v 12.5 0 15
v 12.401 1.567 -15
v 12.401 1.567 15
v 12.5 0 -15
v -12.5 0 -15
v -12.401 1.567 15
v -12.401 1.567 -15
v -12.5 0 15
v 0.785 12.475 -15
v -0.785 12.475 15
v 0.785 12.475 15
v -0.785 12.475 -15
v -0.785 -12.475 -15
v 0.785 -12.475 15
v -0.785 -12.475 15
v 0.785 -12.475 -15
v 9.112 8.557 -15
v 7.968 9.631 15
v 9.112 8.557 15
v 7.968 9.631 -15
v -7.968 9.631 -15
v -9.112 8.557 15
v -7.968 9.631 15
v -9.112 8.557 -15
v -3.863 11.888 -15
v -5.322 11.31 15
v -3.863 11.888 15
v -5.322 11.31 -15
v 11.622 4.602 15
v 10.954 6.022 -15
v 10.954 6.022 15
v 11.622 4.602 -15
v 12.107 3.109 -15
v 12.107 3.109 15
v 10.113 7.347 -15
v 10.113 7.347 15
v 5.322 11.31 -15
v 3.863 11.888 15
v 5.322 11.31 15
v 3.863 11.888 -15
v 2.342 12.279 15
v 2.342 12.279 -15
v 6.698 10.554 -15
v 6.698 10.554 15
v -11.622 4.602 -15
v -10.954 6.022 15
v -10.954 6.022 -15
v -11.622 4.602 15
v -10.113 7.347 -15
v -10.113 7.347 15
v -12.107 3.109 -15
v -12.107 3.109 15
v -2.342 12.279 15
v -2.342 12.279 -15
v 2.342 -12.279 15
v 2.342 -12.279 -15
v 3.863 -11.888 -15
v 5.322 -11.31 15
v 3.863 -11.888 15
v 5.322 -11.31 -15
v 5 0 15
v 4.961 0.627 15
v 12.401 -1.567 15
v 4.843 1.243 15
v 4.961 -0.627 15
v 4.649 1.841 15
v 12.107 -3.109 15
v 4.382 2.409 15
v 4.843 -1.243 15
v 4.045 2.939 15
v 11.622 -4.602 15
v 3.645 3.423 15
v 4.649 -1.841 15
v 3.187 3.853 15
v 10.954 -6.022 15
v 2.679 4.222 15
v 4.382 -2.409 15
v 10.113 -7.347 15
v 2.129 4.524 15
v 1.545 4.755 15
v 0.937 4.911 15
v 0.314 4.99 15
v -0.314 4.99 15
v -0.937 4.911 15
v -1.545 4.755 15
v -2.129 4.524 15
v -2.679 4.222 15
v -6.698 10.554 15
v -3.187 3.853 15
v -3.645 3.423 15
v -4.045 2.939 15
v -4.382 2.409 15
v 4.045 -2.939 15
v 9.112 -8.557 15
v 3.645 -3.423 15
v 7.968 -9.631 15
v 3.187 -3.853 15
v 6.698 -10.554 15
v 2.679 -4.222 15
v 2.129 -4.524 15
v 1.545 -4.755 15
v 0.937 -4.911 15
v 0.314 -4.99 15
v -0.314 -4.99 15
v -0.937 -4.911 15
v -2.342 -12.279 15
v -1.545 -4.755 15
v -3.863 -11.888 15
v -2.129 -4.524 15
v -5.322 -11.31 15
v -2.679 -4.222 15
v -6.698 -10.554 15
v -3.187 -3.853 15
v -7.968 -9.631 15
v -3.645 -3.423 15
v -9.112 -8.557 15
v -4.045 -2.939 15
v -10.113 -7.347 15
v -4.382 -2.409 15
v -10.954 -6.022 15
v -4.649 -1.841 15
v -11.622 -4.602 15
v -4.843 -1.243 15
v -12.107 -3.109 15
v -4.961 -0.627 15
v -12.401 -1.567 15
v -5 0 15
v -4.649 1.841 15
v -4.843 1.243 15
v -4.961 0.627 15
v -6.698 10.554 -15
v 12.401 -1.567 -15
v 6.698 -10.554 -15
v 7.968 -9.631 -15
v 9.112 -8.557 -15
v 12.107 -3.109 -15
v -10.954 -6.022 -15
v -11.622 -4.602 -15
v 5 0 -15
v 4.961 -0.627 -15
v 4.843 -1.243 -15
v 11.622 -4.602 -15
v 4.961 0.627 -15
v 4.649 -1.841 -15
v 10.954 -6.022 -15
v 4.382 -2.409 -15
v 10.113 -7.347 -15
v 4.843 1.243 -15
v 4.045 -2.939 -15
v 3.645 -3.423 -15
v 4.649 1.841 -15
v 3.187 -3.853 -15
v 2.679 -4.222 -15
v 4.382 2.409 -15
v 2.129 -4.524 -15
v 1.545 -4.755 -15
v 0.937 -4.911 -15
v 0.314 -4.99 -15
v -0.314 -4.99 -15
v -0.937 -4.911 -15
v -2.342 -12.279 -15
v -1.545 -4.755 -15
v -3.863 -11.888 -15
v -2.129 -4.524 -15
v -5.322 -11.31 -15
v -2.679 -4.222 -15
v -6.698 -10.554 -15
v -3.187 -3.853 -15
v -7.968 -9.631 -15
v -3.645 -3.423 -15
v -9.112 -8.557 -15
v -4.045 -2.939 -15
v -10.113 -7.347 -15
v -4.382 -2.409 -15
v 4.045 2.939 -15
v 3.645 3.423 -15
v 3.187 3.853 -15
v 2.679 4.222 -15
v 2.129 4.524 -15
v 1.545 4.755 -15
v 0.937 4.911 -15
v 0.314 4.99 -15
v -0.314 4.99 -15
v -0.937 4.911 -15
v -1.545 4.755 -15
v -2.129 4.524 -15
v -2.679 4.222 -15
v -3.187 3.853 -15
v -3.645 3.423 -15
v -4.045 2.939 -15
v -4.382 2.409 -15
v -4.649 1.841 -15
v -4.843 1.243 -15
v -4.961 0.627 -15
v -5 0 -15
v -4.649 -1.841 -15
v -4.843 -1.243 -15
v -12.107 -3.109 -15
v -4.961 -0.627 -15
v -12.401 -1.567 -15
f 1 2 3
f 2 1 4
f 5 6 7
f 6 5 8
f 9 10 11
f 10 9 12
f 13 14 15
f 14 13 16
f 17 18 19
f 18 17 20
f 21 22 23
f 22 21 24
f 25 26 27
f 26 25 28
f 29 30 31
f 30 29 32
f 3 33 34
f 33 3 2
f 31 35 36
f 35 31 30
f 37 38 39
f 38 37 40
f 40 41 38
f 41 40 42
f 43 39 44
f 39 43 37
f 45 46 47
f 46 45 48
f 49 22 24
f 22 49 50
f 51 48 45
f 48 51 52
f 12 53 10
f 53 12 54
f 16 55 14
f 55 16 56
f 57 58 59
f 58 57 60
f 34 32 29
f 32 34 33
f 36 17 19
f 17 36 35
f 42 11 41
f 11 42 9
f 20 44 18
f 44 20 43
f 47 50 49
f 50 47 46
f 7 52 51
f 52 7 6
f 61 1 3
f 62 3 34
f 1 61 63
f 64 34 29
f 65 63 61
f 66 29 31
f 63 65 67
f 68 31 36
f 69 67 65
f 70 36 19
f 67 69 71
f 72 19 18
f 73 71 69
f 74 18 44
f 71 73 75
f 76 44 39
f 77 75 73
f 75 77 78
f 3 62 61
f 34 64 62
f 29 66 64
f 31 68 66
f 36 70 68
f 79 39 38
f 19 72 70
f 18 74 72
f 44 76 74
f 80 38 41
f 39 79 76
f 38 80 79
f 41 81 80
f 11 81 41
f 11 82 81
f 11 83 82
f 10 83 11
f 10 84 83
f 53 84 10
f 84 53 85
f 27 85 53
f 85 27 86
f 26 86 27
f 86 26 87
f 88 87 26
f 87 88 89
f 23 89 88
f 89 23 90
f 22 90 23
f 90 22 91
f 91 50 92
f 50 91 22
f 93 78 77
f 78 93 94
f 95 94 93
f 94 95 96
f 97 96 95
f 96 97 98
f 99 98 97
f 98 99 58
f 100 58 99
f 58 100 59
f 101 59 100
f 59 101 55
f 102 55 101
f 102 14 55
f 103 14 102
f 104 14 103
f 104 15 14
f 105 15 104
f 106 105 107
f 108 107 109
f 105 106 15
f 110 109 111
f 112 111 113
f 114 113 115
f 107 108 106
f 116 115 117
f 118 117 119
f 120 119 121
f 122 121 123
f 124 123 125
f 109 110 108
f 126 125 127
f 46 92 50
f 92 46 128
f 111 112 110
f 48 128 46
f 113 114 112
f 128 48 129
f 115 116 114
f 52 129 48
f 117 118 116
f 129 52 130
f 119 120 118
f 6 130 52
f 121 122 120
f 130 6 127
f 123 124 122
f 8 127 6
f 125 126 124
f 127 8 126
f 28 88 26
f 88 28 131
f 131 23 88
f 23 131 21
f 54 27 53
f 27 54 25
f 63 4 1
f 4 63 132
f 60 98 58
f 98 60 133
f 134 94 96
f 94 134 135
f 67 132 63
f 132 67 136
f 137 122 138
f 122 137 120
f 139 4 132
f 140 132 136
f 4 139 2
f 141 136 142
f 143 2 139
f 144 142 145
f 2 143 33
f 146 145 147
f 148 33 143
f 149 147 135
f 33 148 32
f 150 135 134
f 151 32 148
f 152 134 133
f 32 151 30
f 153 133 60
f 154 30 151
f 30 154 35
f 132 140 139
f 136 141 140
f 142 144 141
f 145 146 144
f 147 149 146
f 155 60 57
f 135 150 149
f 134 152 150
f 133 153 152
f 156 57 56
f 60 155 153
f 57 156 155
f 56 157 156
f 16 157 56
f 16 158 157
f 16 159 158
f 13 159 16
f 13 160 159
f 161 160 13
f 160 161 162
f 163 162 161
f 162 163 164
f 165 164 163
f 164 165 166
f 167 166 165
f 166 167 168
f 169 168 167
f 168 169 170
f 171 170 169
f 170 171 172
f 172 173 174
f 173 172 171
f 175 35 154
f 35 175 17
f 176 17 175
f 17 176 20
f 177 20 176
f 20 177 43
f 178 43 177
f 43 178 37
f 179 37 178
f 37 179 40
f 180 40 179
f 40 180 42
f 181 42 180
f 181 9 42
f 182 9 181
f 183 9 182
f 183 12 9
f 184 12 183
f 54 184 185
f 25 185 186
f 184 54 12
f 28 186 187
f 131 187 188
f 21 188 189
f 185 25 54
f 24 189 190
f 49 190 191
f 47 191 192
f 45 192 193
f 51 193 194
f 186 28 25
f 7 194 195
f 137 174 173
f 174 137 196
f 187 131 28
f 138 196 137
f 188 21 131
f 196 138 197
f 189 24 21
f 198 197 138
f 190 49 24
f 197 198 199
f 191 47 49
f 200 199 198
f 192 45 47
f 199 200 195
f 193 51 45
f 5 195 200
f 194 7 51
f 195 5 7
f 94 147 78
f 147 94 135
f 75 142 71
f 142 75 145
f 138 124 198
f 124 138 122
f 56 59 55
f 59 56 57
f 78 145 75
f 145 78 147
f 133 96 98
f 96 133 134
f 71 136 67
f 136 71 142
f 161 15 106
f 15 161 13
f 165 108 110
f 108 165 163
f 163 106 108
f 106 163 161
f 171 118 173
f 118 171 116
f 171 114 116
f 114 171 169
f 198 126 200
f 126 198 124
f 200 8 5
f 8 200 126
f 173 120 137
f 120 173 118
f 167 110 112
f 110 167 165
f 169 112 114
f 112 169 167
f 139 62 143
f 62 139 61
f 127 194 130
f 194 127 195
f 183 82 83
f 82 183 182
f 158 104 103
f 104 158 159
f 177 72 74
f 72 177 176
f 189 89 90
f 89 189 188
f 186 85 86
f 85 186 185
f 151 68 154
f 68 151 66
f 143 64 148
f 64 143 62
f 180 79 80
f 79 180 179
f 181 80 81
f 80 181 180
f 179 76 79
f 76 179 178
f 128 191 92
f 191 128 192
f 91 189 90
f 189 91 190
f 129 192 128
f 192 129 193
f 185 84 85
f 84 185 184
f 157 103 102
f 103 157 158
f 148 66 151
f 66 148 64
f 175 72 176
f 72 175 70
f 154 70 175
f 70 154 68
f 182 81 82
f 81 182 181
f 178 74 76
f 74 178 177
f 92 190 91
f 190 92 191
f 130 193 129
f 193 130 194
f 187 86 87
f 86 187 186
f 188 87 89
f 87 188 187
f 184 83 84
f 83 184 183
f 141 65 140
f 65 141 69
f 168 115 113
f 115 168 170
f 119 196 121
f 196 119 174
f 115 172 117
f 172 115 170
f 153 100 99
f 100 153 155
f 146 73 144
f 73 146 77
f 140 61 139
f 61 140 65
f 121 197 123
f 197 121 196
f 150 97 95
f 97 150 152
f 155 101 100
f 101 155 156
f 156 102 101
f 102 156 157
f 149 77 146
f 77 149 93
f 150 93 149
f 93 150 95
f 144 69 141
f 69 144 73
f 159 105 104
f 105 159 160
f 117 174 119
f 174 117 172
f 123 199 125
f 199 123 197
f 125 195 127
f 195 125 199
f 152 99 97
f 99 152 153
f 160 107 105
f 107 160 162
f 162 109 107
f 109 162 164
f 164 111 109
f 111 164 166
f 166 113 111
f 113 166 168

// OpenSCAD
$fn = 50;


difference() {
	union() {
		translate(v = [0, 0, -15.0000000000]) {
			cylinder(h = 30, r = 12.5000000000);
		}
	}
	union() {
		translate(v = [0, 0, -100.0000000000]) {
			cylinder(h = 200, r = 5);
		}
	}
}
